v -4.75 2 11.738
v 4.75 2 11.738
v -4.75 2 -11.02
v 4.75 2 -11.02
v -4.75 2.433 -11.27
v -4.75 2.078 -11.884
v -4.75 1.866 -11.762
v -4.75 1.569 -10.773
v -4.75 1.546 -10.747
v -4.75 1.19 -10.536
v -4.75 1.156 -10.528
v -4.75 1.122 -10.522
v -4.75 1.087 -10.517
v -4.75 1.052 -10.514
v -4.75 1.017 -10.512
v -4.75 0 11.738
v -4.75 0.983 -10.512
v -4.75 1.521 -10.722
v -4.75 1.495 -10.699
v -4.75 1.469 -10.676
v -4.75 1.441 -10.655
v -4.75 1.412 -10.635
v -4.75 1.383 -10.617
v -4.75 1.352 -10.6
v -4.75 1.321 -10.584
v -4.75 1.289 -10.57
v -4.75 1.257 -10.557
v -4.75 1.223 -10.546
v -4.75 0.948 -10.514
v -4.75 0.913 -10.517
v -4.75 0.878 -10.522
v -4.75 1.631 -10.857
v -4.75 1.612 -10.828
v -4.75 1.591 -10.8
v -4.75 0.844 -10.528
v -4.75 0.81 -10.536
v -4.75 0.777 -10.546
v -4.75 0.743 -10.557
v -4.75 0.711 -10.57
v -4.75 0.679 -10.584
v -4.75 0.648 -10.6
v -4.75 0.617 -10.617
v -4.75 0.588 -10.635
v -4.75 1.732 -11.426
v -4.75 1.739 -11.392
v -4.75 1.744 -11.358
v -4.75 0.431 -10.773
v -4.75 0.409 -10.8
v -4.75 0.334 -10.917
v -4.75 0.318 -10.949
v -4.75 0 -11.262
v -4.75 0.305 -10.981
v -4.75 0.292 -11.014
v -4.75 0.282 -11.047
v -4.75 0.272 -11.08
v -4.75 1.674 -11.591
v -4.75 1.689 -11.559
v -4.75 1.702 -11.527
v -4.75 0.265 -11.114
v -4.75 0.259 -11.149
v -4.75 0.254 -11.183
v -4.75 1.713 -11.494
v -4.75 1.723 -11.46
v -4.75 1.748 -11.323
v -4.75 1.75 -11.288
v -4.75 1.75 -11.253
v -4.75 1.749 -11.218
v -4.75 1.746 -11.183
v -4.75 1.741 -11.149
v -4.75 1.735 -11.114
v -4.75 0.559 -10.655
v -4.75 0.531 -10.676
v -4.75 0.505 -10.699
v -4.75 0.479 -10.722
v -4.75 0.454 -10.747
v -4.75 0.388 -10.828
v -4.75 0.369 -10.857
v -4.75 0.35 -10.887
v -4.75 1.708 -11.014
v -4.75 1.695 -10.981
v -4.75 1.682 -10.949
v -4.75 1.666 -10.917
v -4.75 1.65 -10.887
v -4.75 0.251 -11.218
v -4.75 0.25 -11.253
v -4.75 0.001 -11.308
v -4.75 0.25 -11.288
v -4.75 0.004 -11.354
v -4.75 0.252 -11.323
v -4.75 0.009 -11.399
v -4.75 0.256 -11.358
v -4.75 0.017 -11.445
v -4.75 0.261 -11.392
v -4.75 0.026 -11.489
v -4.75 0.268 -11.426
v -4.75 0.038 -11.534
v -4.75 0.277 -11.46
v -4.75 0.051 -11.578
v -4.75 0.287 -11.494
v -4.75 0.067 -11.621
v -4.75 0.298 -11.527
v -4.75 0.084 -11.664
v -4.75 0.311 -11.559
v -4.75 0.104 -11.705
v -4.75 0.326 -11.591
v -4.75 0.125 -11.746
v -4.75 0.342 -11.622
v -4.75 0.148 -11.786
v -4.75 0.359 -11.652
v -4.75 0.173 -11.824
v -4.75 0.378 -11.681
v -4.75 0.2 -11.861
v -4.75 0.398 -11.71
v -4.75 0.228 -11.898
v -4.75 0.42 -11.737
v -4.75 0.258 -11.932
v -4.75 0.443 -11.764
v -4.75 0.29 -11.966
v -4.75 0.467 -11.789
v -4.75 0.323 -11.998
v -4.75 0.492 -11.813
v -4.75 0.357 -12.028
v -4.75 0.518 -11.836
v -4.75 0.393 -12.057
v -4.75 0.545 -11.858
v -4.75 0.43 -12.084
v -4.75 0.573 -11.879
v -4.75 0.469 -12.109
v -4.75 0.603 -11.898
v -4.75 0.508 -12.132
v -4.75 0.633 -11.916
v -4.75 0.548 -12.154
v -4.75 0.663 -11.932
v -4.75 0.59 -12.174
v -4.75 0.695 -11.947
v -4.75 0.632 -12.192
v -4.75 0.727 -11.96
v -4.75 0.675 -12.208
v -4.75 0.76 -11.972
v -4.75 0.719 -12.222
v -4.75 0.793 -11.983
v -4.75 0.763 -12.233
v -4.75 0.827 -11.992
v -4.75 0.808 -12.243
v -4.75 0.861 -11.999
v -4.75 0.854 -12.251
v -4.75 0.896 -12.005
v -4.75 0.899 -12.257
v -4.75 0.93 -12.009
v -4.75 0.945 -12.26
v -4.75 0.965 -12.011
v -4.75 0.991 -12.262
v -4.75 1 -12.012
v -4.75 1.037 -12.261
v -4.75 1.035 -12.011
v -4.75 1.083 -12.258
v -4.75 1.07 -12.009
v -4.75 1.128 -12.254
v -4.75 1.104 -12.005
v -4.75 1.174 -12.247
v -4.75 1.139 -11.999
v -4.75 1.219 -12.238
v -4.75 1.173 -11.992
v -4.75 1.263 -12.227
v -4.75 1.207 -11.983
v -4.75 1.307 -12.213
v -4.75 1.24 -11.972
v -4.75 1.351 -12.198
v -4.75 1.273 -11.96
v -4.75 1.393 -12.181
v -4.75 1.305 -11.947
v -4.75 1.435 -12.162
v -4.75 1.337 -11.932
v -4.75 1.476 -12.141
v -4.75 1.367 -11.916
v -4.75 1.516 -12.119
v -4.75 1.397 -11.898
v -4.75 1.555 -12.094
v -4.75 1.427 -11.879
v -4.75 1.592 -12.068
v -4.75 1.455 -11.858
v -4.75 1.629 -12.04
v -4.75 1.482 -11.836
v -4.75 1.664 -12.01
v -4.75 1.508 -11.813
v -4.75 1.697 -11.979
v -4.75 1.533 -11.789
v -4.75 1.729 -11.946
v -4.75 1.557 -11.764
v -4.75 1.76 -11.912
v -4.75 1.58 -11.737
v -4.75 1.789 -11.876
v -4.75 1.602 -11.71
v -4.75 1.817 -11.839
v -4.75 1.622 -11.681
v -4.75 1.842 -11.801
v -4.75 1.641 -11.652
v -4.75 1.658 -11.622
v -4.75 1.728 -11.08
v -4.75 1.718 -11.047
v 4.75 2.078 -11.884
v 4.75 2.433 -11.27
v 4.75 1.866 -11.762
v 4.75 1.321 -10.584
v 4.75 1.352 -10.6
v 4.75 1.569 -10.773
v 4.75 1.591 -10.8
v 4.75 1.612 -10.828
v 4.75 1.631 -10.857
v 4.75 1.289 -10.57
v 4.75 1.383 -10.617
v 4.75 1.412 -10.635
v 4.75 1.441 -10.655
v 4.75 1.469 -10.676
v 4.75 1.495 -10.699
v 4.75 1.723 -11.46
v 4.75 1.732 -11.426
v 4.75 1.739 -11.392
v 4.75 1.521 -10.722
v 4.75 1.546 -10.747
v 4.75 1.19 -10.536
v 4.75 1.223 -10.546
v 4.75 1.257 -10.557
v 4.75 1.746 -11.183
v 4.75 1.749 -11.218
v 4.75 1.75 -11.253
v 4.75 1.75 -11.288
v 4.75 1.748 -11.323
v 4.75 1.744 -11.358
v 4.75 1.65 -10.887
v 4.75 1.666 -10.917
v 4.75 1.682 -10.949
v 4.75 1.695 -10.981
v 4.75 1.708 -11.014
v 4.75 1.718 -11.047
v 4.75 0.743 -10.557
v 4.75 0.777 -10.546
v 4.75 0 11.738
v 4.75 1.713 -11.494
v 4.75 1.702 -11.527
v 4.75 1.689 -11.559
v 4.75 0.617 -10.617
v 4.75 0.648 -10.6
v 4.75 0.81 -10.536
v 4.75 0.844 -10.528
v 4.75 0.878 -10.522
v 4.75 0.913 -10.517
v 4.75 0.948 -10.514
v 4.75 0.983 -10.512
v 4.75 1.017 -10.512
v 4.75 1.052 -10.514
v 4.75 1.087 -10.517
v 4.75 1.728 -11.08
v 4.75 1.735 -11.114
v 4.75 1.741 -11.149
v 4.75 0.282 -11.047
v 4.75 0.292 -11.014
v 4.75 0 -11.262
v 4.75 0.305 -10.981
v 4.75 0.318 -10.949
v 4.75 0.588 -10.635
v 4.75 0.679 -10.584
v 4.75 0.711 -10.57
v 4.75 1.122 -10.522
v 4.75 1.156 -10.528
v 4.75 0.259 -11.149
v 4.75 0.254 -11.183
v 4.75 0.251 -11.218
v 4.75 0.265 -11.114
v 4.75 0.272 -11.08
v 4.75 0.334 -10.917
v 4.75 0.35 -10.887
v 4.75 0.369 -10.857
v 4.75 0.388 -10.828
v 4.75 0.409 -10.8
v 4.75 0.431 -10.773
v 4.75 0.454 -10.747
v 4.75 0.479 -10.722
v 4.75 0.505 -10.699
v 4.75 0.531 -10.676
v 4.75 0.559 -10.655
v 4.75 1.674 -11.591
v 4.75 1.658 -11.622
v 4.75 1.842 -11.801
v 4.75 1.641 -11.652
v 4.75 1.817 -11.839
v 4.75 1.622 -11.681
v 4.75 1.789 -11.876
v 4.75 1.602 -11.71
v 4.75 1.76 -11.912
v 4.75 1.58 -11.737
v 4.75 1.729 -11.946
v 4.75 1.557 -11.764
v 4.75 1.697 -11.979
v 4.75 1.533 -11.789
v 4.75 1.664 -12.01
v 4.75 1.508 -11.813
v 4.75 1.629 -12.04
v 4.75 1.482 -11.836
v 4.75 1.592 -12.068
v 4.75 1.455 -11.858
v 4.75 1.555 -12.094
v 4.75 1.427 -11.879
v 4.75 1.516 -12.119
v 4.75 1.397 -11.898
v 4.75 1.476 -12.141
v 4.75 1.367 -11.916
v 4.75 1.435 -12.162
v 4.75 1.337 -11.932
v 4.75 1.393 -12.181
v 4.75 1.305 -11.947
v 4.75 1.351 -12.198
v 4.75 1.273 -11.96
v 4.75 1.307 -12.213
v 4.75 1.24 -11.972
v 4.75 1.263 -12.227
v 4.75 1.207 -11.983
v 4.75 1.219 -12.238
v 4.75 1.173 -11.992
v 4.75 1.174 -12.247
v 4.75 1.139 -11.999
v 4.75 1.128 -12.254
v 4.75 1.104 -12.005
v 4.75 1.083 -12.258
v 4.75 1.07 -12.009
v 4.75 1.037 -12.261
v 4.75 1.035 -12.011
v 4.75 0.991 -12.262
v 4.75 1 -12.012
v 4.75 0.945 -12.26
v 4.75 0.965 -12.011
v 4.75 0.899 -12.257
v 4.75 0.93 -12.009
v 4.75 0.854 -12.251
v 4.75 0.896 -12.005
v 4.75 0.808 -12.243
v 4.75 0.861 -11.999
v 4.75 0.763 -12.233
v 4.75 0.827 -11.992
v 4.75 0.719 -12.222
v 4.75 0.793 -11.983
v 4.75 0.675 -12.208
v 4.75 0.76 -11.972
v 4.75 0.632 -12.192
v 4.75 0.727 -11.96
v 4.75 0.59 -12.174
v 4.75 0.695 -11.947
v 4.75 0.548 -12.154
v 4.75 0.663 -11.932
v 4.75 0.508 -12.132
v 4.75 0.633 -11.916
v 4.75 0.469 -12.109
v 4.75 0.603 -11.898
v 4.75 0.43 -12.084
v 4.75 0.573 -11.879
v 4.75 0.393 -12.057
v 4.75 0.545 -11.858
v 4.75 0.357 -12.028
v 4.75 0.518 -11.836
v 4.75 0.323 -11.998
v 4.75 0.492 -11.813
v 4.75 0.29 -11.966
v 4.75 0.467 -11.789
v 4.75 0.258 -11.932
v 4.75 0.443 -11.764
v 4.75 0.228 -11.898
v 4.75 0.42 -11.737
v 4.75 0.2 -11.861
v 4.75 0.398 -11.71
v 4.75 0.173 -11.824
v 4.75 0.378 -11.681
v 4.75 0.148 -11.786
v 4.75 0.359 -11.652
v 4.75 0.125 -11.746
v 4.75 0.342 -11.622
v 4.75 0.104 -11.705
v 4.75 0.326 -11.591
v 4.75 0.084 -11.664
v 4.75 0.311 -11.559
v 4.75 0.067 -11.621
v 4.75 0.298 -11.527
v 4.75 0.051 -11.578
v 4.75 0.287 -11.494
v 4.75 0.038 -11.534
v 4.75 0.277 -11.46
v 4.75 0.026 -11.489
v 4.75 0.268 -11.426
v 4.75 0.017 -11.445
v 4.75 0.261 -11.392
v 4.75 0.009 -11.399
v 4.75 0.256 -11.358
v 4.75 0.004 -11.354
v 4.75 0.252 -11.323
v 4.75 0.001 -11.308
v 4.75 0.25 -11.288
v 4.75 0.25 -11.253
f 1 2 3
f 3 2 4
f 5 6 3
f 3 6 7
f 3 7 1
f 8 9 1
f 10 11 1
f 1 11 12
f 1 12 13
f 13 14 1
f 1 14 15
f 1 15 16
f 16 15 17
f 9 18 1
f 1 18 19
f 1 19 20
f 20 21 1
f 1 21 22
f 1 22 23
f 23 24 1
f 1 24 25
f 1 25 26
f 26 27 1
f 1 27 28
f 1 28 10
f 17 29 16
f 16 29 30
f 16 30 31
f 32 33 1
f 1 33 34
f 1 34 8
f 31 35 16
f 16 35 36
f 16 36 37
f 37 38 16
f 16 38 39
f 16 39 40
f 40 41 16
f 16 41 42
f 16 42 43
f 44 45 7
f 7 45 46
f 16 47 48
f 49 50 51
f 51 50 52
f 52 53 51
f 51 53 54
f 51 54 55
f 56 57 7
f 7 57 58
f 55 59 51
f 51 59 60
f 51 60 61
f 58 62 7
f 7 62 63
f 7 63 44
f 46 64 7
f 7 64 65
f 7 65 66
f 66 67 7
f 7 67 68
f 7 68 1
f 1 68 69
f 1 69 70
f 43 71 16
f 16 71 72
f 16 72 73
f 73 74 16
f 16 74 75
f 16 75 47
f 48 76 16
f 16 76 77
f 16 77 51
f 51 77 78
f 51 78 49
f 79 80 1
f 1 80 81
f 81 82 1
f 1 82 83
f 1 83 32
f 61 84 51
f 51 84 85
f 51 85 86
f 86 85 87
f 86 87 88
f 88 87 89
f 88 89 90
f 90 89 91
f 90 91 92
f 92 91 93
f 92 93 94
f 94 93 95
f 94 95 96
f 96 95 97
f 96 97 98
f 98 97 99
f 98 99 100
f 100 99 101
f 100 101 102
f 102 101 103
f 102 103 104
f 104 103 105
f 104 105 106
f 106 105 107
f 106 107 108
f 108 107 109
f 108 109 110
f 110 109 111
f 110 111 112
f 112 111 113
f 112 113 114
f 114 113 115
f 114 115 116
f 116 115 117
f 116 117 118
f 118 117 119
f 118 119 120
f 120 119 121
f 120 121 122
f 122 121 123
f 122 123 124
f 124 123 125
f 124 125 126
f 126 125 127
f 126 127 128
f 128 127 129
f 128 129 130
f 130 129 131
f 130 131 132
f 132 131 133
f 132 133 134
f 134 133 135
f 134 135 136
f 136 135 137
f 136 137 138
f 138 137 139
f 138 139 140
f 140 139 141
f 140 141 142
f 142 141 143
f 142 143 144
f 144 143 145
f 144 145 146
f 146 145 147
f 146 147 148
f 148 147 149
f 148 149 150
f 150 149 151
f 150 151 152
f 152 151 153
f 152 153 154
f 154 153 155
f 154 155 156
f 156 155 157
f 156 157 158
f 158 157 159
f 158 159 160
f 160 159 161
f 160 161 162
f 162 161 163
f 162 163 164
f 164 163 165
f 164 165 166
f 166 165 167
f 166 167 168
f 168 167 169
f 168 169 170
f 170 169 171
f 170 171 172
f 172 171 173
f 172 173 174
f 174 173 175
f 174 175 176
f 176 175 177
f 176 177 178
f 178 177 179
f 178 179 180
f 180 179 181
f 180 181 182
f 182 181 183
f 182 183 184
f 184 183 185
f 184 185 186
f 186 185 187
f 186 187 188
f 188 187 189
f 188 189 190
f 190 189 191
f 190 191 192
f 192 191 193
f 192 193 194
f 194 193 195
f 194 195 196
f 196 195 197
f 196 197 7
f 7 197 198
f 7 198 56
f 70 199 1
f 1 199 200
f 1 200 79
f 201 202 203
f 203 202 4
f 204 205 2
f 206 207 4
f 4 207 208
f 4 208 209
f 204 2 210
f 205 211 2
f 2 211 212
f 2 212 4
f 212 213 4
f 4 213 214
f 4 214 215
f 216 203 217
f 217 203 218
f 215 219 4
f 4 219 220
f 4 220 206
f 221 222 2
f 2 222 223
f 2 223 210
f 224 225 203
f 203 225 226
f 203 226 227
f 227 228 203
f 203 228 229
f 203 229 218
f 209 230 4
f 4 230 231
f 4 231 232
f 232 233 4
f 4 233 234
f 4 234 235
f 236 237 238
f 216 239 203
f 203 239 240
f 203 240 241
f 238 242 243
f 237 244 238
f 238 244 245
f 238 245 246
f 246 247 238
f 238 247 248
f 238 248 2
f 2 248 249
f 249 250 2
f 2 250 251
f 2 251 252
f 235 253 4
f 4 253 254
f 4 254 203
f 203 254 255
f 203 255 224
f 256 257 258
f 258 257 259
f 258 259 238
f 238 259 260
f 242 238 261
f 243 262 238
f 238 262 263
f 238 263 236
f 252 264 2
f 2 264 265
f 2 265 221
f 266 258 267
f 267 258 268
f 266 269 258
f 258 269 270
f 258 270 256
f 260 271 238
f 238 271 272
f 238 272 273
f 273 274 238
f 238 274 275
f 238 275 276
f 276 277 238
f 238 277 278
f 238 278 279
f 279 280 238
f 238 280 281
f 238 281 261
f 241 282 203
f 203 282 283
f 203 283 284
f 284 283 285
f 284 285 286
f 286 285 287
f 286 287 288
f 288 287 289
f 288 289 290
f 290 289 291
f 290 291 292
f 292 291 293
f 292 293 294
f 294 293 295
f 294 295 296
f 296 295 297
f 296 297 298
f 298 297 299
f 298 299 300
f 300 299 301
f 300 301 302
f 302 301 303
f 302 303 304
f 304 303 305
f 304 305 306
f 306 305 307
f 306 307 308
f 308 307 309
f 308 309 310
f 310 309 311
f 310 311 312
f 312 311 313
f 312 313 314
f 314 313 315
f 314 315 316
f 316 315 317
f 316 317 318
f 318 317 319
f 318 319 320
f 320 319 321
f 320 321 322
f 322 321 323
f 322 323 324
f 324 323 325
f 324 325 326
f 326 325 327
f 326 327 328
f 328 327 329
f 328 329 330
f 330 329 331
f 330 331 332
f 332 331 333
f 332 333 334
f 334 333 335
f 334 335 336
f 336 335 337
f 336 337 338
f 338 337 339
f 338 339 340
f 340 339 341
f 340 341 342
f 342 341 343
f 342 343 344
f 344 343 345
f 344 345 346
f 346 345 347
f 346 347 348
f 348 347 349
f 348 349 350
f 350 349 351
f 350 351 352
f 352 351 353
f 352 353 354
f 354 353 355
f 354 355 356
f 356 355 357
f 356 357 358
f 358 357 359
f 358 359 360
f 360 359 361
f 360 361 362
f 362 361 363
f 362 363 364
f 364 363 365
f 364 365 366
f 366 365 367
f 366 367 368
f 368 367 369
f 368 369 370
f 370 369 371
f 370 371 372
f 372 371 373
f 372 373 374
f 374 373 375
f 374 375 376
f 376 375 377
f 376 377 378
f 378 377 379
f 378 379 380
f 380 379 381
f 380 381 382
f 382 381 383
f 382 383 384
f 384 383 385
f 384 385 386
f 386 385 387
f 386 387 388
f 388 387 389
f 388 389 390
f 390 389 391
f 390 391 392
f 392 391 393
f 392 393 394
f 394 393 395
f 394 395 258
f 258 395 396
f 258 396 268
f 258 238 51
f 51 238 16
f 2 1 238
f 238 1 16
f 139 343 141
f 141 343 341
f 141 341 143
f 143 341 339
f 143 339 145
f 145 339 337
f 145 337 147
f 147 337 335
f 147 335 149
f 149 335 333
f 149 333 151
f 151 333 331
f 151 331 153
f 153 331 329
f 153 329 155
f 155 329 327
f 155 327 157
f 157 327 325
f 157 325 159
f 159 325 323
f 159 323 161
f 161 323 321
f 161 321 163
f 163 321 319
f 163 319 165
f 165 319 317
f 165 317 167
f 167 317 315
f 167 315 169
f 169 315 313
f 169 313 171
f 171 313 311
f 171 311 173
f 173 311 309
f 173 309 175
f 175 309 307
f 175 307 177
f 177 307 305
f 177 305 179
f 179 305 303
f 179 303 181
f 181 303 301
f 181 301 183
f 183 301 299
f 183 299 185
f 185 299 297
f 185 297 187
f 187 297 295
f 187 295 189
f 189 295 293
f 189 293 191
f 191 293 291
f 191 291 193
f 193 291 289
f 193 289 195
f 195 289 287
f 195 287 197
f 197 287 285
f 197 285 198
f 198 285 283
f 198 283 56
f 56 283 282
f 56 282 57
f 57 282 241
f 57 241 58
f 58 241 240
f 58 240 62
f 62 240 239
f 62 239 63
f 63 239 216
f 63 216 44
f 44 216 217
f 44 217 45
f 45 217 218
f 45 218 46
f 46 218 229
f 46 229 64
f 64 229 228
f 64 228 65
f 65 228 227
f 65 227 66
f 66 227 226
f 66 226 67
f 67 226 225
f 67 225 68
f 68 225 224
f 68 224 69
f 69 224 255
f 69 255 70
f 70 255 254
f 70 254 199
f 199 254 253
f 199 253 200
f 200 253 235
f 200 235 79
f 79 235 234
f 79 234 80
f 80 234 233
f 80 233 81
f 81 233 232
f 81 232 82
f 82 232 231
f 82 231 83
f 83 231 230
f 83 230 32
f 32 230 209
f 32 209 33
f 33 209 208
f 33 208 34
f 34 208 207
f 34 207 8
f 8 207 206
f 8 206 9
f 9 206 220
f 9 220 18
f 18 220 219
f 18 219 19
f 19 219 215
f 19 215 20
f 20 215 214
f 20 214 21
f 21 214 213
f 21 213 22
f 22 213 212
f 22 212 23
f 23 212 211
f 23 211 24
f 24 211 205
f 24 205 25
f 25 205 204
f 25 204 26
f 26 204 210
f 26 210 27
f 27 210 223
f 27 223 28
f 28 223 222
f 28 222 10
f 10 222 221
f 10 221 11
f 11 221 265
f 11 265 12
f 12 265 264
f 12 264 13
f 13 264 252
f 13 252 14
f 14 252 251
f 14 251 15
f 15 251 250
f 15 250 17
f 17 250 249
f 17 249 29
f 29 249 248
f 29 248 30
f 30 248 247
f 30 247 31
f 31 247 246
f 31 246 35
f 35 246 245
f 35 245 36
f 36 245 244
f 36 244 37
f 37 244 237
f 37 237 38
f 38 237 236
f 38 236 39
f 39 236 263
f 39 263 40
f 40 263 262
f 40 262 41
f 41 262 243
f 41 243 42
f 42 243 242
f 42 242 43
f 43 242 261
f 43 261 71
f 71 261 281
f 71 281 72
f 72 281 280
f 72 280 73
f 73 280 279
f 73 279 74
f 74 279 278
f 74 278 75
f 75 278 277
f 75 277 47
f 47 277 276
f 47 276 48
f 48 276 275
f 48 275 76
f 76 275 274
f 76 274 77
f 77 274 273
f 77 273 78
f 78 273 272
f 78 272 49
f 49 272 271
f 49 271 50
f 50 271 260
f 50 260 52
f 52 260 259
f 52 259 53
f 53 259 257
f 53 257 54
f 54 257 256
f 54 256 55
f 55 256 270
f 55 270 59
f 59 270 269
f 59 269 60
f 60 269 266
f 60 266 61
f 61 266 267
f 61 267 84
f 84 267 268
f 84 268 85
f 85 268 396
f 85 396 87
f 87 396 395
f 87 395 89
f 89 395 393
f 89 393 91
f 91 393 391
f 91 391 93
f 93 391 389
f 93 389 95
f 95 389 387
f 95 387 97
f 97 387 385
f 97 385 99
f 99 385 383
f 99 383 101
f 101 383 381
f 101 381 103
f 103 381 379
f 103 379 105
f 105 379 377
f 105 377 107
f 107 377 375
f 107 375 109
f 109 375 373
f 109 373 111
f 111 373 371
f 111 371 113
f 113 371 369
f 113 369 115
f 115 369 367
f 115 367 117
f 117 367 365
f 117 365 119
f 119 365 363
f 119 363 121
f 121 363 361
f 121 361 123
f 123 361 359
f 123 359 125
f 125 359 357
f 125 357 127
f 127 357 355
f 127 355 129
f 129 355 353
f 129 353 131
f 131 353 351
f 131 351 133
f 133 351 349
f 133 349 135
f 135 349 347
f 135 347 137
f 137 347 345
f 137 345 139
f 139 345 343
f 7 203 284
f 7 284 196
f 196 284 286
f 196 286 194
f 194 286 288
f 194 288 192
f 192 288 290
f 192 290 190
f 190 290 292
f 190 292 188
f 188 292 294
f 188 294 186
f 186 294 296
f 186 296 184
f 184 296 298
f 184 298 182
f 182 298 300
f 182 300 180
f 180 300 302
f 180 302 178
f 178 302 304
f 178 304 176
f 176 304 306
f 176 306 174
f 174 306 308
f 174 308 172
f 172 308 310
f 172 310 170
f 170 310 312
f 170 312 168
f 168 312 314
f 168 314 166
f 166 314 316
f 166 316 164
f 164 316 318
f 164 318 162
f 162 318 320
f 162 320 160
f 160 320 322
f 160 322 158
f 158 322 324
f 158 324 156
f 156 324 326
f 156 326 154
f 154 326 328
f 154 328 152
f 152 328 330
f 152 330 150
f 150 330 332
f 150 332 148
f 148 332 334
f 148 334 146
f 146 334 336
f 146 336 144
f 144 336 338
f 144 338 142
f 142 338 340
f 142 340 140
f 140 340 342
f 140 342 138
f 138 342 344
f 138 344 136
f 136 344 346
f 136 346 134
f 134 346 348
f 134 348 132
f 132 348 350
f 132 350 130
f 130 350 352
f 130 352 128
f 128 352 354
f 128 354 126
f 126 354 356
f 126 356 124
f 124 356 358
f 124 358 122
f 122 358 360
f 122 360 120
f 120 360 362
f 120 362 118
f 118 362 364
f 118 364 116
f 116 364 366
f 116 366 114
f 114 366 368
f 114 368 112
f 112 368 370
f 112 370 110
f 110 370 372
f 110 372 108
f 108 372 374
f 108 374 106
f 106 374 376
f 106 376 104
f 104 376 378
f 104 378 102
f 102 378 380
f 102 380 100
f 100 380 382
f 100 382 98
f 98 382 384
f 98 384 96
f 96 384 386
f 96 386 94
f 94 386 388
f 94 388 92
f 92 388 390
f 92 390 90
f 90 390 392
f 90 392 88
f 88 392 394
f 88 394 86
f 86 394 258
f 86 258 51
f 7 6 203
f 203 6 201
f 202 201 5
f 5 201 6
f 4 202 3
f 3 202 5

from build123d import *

# Parameters (mm, degrees)
SKETCH_1_W          = 9.5
SKETCH_1_H          = 24
EXTRUDE_1_DEPTH     = 2
SKETCH_5_R          = 0.75
CUT_EXTRUDE_4_DEPTH = 10.5
EXTRUDE_2_DEPTH     = 9.5


with BuildPart() as part:
    # 草图1 → 凸台-拉伸1 (new body)
    with BuildSketch(Plane(origin=(0, 0, 0), x_dir=(1, 0, 0), z_dir=(0, 1, 0))):
        with Locations((0, 0.261859188)):
            Rectangle(SKETCH_1_W, SKETCH_1_H)
    extrude(amount=EXTRUDE_1_DEPTH)

    # 草图5 → 切除-拉伸4 (cut, through all)
    with BuildSketch(Plane(origin=(4.75, 0, 0), x_dir=(0, 0, -1), z_dir=(1, 0, 0))):
        with BuildLine():
            Line((12.261859188, 0), (12.261859188, 1))
            ThreePointArc((12.261859188, 1), (11.968965969, 0.292893219), (11.261859188, 0))
            Line((11.261859188, 0), (12.261859188, 0))
        make_face()
        with BuildLine():
            Line((11.839209457, 2), (11.761859188, 1.866025404))
            ThreePointArc((11.761859188, 1.866025404), (12.127884592, 1.5), (12.261859188, 1))
            Line((12.261859188, 1), (12.261859188, 2))
            Line((12.261859188, 2), (11.839209457, 2))
        make_face()
        with Locations((11.261859188, 1)):
            Circle(SKETCH_5_R)
    extrude(amount=-CUT_EXTRUDE_4_DEPTH, mode=Mode.SUBTRACT)

    # 草图5<4> → 凸台-拉伸2 (add)
    with BuildSketch(Plane(origin=(4.75, 0, 0), x_dir=(0, 0, -1), z_dir=(1, 0, 0))):
        Polygon((11.261859188, 2), (11.839209457, 2), (11.884340006, 2.078168404), (11.269731653, 2.433012702), (11.019731653, 2), align=None)
    extrude(amount=-EXTRUDE_2_DEPTH)


solid = part.part
